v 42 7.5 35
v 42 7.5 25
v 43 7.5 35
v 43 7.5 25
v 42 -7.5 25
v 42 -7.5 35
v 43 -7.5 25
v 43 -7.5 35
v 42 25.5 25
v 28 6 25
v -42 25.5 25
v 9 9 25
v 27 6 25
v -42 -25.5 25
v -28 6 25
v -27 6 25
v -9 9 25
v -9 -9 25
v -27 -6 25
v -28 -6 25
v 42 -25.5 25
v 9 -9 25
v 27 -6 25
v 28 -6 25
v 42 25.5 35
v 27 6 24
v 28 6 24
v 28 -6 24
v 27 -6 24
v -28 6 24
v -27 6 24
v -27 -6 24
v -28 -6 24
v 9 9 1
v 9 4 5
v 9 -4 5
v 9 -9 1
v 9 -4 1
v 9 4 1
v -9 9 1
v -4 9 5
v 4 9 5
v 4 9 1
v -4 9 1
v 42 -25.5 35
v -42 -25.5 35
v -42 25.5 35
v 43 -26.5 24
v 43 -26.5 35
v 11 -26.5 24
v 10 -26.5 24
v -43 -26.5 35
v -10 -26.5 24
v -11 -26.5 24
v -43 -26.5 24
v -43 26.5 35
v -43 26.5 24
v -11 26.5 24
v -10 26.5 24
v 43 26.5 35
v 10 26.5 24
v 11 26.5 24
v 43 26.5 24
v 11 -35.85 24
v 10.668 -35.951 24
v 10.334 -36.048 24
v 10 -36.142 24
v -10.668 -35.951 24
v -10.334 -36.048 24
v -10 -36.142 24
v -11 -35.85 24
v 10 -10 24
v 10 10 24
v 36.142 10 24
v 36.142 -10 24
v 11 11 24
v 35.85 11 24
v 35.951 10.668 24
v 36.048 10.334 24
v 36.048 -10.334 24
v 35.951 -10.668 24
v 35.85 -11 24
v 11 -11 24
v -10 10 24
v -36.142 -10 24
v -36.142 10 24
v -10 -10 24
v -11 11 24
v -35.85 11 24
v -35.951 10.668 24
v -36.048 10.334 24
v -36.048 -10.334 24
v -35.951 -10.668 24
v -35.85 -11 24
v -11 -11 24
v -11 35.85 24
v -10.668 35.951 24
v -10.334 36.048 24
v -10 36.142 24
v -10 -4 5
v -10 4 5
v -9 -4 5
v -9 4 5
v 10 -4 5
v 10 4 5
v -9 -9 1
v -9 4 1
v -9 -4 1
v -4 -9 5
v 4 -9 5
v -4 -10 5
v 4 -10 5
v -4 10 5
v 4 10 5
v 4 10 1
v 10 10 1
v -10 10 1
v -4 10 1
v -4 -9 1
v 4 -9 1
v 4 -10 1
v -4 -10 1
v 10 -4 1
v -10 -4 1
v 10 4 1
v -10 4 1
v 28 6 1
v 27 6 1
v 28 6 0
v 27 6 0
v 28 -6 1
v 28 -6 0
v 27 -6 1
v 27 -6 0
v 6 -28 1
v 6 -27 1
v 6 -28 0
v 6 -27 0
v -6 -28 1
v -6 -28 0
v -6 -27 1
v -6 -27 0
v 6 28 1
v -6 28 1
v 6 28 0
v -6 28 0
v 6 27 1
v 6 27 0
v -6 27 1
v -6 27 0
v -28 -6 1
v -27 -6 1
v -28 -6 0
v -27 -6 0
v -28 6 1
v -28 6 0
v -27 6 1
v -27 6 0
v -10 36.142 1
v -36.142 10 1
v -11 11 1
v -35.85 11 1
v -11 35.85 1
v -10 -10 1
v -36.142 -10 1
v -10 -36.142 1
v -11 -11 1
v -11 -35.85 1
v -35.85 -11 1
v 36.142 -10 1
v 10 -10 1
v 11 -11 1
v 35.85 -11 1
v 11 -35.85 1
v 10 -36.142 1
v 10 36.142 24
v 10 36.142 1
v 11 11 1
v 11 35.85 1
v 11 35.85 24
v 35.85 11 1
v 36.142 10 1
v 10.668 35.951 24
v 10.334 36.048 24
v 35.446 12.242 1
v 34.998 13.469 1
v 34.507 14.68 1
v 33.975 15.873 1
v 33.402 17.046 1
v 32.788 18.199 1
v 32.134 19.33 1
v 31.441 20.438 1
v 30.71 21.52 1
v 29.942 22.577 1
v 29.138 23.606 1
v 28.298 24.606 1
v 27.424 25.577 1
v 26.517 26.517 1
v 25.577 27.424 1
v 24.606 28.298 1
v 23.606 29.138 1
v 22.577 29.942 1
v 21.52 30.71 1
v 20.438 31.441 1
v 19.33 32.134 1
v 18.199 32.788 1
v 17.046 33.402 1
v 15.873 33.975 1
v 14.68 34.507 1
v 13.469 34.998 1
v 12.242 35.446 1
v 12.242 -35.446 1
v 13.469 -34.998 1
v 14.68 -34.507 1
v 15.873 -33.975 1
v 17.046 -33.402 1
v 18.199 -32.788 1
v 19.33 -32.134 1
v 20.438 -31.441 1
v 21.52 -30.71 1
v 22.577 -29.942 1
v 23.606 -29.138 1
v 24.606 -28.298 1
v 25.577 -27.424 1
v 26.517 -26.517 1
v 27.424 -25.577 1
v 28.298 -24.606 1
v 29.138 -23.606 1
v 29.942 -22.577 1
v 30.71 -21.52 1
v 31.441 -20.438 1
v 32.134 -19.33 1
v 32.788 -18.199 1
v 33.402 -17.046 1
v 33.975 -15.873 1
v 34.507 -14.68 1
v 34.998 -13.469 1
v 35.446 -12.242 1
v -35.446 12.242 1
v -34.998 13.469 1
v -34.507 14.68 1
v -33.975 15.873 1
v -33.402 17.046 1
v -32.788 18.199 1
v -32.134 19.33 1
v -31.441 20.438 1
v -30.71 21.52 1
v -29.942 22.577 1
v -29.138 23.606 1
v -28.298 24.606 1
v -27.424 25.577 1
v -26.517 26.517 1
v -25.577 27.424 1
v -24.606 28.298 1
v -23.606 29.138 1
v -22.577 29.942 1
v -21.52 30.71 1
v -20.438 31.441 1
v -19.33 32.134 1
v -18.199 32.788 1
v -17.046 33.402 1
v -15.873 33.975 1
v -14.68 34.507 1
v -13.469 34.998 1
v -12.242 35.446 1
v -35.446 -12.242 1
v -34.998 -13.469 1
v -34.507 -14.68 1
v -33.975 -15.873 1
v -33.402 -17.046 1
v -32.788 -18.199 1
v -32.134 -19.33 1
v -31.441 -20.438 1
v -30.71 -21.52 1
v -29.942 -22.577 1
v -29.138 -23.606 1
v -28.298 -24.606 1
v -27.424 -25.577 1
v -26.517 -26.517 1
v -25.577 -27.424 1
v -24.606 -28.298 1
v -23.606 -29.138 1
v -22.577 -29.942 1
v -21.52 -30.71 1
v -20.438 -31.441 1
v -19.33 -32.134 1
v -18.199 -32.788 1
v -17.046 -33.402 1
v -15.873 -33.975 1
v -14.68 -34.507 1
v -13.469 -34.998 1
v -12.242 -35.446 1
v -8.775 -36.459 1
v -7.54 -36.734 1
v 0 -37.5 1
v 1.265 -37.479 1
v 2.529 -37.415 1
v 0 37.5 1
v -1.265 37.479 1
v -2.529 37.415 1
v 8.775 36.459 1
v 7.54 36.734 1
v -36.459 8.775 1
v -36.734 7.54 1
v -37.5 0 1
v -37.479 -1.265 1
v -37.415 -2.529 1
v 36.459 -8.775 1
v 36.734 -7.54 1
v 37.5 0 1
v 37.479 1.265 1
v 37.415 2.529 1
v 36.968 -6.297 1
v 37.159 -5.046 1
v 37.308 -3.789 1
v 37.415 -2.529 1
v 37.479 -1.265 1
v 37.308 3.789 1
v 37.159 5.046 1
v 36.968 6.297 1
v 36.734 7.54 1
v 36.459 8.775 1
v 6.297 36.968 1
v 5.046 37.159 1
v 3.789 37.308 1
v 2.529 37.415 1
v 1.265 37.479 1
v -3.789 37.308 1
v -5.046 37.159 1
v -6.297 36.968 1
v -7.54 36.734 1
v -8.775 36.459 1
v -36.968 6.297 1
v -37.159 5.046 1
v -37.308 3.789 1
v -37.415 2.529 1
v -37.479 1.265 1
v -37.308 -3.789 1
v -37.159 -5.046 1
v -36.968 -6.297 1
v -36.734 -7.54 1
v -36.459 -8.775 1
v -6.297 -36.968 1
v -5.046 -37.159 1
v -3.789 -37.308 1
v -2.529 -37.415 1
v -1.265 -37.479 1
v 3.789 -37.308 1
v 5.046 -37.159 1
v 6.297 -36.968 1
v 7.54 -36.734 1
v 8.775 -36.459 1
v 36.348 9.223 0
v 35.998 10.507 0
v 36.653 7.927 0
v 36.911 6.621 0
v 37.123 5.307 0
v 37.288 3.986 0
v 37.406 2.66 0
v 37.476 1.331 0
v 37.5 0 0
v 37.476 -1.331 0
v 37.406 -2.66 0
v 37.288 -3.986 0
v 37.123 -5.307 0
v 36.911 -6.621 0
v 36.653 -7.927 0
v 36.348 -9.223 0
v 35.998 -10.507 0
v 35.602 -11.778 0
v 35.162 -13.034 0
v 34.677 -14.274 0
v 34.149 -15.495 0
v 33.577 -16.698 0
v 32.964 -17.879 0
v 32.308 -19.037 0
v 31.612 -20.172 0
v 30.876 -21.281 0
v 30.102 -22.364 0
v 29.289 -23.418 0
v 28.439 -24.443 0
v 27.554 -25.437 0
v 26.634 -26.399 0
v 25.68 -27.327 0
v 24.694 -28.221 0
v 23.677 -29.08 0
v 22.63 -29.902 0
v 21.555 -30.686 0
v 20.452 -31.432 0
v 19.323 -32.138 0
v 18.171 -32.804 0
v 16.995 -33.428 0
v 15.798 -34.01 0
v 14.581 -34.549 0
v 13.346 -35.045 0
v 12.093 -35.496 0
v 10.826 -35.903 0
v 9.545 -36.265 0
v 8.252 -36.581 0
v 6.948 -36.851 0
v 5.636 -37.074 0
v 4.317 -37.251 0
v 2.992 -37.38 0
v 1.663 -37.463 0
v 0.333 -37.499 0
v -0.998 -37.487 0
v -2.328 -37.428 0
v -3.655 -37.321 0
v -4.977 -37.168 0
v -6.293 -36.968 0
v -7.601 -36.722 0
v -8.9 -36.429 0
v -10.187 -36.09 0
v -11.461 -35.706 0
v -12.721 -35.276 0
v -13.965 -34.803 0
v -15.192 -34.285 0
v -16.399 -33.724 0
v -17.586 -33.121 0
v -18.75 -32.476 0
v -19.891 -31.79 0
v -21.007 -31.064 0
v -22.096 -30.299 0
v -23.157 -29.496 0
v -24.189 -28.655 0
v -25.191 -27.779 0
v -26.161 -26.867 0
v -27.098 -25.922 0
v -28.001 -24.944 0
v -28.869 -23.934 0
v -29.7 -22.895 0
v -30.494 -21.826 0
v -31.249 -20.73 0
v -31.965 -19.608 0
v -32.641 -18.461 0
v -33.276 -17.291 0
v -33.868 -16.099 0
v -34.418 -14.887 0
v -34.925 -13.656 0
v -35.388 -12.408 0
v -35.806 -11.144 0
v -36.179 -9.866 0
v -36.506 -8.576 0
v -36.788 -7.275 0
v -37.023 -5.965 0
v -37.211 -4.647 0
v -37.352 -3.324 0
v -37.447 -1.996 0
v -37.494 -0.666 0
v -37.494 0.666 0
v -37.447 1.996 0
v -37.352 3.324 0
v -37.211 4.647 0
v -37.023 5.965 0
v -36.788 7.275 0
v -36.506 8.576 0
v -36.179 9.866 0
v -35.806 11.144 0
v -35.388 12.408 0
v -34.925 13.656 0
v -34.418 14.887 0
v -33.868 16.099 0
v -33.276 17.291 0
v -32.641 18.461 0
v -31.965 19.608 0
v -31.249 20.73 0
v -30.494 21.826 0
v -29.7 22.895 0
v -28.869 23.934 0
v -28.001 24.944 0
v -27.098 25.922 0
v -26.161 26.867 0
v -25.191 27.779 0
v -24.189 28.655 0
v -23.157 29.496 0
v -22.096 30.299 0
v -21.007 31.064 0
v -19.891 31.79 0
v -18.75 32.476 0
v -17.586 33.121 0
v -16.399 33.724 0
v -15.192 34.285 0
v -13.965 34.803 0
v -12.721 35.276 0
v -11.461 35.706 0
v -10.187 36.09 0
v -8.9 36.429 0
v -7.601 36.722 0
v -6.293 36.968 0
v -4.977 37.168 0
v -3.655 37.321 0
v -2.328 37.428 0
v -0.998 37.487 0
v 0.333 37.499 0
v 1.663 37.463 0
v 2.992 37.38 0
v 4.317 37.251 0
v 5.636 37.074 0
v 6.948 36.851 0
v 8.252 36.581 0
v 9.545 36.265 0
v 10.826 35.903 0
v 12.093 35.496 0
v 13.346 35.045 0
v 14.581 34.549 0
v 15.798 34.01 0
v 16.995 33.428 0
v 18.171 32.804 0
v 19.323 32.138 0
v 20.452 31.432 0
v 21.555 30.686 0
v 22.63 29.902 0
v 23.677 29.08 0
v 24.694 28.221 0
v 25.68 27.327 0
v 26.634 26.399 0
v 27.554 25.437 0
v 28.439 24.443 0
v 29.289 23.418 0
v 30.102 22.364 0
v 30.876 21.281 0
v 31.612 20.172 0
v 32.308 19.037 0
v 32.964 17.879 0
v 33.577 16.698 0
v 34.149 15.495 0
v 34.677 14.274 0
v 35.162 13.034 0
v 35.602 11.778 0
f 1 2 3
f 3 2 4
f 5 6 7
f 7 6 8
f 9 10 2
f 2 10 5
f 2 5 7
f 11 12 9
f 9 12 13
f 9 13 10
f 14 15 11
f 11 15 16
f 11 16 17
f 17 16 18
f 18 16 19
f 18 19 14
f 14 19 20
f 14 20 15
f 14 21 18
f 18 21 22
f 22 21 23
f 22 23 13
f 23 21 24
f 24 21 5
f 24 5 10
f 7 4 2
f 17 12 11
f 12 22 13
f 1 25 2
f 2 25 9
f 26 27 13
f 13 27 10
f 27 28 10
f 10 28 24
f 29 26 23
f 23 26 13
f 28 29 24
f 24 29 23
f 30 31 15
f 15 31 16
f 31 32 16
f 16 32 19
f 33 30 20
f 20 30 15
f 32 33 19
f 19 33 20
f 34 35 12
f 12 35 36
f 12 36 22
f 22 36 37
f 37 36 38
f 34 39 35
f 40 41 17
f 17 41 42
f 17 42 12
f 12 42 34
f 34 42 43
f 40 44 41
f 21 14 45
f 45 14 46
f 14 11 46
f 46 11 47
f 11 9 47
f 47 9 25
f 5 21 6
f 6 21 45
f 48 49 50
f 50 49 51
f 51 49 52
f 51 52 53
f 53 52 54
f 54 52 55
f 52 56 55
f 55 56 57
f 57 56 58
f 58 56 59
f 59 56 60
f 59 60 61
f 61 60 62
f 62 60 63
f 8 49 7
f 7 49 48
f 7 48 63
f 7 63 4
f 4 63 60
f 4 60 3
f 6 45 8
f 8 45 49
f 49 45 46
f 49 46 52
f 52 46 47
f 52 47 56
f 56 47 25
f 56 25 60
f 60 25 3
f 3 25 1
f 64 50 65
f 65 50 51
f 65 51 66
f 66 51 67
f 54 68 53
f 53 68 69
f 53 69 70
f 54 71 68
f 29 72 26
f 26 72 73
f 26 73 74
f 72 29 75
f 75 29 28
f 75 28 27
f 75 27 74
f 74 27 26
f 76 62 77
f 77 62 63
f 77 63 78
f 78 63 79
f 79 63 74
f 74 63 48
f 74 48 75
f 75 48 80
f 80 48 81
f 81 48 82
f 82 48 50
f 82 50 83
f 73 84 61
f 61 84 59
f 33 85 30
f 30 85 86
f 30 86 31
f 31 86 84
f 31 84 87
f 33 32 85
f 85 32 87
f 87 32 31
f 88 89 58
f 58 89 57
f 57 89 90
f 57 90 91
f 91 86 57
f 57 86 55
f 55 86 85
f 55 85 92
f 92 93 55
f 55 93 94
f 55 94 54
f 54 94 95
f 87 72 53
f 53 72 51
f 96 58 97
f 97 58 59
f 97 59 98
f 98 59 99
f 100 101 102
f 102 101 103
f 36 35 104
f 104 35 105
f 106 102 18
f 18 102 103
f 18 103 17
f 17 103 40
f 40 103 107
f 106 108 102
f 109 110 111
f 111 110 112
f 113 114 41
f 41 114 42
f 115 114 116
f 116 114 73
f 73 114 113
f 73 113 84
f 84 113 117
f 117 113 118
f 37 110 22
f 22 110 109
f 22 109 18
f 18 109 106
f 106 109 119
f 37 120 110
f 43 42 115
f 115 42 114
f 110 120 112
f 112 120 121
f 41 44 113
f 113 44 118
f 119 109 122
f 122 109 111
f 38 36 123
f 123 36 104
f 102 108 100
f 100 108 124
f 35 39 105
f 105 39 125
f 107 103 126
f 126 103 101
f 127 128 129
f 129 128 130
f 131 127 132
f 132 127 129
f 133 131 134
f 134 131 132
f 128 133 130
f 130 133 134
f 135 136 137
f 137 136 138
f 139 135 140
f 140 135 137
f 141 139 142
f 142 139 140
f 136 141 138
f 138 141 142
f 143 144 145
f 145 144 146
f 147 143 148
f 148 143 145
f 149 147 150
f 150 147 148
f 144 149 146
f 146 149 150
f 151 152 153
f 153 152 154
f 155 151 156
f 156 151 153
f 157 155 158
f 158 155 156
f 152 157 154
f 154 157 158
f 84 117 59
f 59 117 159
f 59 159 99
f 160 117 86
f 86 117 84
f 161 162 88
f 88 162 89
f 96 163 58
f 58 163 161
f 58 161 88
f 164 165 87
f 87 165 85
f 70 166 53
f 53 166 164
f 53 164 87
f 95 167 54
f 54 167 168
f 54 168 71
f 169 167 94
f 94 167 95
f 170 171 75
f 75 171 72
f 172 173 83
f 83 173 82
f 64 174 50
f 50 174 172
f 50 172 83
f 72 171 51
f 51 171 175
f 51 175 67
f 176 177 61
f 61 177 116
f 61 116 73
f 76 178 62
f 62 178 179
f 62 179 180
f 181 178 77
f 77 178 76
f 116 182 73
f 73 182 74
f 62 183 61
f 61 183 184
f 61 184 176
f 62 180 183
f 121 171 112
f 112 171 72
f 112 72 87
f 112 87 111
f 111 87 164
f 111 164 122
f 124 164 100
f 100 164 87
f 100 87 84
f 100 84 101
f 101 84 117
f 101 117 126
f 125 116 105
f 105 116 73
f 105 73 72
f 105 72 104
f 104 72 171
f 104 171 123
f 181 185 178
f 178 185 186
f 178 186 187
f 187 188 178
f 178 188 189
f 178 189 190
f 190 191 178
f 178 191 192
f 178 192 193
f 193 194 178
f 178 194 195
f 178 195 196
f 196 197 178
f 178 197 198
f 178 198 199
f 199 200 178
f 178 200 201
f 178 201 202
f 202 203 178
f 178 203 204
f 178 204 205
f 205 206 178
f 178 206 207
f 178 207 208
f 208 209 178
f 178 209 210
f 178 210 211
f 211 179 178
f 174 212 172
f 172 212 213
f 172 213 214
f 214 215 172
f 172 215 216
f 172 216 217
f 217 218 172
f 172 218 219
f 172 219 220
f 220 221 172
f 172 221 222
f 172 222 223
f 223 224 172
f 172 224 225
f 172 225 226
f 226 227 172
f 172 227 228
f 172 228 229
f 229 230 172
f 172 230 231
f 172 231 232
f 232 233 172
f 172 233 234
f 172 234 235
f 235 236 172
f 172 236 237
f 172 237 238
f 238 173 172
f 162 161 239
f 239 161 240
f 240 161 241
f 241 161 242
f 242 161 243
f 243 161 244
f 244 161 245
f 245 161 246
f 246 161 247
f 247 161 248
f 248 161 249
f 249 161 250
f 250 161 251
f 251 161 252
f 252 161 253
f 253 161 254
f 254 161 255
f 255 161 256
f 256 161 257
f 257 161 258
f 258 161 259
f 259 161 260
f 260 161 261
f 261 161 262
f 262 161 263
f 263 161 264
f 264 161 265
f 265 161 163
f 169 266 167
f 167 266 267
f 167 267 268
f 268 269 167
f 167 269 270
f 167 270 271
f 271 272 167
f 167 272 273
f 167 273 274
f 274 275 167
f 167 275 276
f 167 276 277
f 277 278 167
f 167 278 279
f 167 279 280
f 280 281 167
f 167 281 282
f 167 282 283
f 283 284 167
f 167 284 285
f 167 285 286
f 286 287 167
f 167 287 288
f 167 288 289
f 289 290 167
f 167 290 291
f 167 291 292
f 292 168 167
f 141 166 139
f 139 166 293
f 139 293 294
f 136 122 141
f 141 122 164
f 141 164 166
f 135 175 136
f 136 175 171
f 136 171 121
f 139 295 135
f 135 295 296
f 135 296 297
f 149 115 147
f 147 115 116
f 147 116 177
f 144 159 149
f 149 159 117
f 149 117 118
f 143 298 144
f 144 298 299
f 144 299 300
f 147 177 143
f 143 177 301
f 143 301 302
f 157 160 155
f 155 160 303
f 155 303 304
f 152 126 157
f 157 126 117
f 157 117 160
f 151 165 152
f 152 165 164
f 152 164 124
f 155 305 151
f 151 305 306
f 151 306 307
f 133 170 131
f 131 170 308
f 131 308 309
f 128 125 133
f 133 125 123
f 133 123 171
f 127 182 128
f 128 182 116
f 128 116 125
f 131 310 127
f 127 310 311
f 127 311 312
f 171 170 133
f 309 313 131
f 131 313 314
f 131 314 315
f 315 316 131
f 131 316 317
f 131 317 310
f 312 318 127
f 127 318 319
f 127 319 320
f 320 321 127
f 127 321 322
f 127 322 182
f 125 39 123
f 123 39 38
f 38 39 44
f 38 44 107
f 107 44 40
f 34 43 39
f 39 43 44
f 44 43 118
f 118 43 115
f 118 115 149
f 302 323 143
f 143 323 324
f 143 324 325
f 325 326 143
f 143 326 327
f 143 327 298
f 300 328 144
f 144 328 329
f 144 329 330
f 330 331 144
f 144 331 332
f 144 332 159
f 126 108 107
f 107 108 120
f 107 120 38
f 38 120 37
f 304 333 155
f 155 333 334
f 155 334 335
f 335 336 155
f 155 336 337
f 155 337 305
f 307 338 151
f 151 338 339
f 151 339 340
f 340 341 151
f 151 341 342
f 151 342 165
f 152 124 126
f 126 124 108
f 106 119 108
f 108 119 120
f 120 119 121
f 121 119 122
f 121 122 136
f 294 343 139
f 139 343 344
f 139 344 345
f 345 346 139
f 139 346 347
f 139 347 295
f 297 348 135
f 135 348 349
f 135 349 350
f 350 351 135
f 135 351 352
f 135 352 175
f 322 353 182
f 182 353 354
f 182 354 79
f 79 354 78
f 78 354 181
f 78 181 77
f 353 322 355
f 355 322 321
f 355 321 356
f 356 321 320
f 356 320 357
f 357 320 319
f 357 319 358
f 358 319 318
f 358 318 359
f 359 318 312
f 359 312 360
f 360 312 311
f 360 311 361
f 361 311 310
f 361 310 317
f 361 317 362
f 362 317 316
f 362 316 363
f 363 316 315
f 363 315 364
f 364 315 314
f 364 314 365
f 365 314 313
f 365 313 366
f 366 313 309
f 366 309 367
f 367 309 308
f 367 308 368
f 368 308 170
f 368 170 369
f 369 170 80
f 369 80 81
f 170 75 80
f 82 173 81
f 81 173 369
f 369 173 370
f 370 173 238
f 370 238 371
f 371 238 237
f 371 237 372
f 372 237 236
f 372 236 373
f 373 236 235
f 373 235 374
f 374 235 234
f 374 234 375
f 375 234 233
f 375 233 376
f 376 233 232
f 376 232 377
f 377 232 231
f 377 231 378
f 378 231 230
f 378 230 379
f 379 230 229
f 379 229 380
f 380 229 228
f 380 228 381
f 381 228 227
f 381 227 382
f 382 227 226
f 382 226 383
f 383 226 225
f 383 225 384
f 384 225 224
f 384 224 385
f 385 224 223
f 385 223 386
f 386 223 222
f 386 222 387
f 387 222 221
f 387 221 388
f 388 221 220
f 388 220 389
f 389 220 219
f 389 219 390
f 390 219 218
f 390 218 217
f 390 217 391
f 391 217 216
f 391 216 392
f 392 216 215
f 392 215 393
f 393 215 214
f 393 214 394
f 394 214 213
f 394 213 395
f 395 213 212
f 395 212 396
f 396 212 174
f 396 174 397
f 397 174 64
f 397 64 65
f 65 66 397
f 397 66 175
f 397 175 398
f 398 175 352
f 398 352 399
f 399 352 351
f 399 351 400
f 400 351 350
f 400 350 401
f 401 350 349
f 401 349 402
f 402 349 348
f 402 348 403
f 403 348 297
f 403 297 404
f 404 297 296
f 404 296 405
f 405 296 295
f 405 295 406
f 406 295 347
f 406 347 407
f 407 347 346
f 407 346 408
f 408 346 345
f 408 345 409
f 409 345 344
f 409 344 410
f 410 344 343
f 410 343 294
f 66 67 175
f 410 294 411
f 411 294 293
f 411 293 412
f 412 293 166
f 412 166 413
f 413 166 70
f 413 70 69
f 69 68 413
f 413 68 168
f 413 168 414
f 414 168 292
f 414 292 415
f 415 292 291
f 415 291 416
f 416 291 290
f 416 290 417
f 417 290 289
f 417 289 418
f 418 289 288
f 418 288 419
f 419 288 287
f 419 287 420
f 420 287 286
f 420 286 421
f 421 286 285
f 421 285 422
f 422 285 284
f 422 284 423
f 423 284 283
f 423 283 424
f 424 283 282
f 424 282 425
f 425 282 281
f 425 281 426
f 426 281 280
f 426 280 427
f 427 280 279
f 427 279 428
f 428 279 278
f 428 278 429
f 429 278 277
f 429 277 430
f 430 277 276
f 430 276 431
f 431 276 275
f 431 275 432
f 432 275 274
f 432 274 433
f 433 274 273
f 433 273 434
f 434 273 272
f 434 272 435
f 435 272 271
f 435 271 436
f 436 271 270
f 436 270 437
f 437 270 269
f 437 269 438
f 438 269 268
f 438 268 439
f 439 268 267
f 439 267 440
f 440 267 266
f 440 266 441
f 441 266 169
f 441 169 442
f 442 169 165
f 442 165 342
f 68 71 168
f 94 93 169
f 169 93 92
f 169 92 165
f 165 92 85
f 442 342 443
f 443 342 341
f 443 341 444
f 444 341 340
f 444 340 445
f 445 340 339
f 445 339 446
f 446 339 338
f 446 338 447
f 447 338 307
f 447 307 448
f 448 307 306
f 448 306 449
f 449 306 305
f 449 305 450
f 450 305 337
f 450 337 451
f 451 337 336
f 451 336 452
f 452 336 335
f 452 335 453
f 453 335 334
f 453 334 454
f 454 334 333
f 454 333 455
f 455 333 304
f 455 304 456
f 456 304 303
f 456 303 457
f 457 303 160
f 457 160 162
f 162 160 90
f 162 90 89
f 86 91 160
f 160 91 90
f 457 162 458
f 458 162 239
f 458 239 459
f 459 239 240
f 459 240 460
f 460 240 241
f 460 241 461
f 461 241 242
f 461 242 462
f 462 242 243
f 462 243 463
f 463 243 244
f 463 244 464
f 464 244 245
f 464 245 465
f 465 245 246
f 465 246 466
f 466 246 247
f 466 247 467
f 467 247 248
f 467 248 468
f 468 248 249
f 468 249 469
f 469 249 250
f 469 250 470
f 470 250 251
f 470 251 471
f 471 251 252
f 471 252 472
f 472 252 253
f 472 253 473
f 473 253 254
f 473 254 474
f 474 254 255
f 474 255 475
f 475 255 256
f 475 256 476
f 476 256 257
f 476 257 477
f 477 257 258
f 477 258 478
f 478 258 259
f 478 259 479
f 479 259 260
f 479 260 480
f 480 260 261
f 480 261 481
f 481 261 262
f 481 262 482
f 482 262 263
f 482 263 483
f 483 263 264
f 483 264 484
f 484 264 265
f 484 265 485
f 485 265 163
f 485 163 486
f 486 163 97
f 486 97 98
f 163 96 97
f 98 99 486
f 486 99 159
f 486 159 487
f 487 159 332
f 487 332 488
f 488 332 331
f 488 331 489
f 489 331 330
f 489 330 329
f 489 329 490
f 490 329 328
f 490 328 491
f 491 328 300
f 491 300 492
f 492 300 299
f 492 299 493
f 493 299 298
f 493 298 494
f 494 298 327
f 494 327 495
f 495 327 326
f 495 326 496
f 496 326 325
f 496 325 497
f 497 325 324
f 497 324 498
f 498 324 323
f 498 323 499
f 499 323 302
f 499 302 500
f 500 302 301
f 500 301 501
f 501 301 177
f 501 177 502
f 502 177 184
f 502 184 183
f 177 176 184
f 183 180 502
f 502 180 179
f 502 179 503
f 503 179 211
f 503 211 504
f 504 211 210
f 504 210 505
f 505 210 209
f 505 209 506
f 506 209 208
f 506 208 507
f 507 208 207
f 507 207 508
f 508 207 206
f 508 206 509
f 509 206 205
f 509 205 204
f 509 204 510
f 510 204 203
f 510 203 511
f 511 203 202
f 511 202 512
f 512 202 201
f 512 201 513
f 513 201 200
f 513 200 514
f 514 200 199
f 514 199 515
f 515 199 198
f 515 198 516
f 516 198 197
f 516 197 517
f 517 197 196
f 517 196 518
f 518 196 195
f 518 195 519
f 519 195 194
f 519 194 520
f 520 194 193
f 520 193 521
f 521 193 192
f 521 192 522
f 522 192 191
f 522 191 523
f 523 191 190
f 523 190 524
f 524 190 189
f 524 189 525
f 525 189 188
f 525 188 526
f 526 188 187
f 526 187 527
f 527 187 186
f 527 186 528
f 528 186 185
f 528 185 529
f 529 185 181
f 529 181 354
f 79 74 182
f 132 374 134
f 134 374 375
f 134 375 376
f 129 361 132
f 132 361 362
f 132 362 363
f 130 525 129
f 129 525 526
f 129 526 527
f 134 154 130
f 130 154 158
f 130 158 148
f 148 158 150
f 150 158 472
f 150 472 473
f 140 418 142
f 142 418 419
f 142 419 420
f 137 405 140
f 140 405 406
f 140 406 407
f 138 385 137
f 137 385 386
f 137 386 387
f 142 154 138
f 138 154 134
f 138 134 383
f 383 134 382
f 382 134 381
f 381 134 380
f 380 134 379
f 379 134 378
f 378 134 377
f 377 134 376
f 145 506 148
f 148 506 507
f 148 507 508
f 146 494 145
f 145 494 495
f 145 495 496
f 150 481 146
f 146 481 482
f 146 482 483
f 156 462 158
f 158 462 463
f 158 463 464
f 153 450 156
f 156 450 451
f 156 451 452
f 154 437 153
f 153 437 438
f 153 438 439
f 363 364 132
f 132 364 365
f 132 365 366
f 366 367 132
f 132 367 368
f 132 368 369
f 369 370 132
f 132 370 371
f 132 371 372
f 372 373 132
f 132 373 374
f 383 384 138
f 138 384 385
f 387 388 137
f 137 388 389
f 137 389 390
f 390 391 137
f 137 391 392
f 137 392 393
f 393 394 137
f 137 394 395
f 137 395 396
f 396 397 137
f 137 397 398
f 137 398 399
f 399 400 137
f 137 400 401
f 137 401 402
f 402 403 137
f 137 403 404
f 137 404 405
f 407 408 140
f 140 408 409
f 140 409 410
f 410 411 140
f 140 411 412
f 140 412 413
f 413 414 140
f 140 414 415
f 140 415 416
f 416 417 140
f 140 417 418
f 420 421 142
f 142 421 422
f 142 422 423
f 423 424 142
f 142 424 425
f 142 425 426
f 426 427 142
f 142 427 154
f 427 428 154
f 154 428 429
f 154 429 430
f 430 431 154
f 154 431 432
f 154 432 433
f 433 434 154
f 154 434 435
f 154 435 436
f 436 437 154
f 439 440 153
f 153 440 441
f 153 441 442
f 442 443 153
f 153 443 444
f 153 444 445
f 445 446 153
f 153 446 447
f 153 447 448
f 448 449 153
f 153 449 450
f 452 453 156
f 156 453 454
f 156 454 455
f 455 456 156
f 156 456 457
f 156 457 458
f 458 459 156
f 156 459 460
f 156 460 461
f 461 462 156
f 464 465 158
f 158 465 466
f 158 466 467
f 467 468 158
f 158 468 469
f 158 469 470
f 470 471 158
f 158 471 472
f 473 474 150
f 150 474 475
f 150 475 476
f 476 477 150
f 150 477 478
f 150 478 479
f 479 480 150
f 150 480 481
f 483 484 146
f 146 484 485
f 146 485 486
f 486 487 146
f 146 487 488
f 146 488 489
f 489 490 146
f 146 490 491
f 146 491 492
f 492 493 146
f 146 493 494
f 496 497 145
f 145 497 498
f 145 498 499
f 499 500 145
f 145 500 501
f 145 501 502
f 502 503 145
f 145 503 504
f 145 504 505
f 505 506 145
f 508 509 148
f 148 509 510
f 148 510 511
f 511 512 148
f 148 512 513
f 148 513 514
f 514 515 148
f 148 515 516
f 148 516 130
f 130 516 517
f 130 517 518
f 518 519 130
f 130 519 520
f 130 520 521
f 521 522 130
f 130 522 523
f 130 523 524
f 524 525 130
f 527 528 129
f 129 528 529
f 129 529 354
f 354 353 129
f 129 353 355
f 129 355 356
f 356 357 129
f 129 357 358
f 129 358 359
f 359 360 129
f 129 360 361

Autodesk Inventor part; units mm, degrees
ref_plane "YZ Plane" through (0, 0, 0) normal (1, 0, 0) x (0, 1, 0)
ref_plane "XZ Plane" through (0, 0, 0) normal (0, 1, 0) x (-1, 0, 0)
ref_plane "XY Plane" through (0, 0, 0) normal (0, 0, 1) x (1, 0, 0)
sketch "Sketch1" plane through (0, 0, 0) normal (0, 0, 1) x (1, 0, 0)
  circle A0 centre (0, 0) radius 37.5
  dimension "d0" = 75
extrude "Extrusion1" add sketch "Sketch1" along normal blind 1
sketch "Sketch2" plane through (0, 0, 1) normal (0, 0, 1) x (1, 0, 0)
  line L0 (-10, -10) -> (10, -10)
  line L1 (10, -10) -> (10, 10)
  line L2 (10, 10) -> (-10, 10)
  line L3 (-10, 10) -> (-10, -10)
  line L4 (-10, 10) -> (10, 10)
  line L5 (10, 10) -> (10, 36.1421)
  line L6 (-10, 36.1421) -> (-10, 10)
  line L7 (10, 10) -> (36.1421, 10)
  line L8 (36.1421, -10) -> (10, -10)
  line L9 (10, -10) -> (10, 10)
  line L10 (-10, -10) -> (10, -10)
  line L11 (10, -10) -> (10, -36.1421)
  line L12 (-10, -36.1421) -> (-10, -10)
  line L13 (-10, -10) -> (-36.1421, -10)
  line L14 (-36.1421, 10) -> (-10, 10)
  line L15 (-10, 10) -> (-10, -10)
  line L16 (35.8504, 11) -> (10, 11)
  line L17 (9, 9) -> (9, -9)
  line L18 (10, -11) -> (35.8504, -11)
  line L19 (11, 10) -> (11, 35.8504)
  line L20 (-11, 35.8504) -> (-11, 10)
  line L21 (-10, 11) -> (-35.8504, 11)
  line L22 (-35.8504, -11) -> (-10, -11)
  line L23 (-9, -9) -> (-9, 9)
  line L24 (-9, -9) -> (9, -9)
  line L25 (11, -10) -> (11, -35.8504)
  line L26 (-11, -35.8504) -> (-11, -10)
  line L27 (-9, 9) -> (9, 9)
  line L28 (9, 9) -> (9, -9)
  line L29 (9, -9) -> (-9, -9)
  line L30 (10, -10) -> (9, -9) construction
  line L31 (-9, 9) -> (-10, 10) construction
  line L32 (-10, -10) -> (-9, -9) construction
  line L33 (9, 9) -> (10, 10) construction
  circle A0 centre (0, 0) radius 37.5
  line L34 (-9, -49.0456) -> (-11, -49.0456)
  point P0 (-11, -11)
  point P1 (11, -11)
  point P2 (-11, 11)
  point P3 (11, 11)
  dimension "d3" = 20
  dimension "d4" = 20
  dimension "d5" = 1
  dimension "d6" = 1
  dimension "d7" = 1
  dimension "d8" = 1
  dimension "d9" = 1
extrude "Extrusion2" add sketch "Sketch2" along normal blind 23 contours L3 L2 L1 L0 | L12 L22 L26 L13 | L8 L25 L18 L11 | L14 L20 L21 L6 | L12 A0 L26 L22 | L26 L22 A0 L13 | L5 L16 L19 L7 | L8 A0 L18 L25 | L18 L25 A0 L11 | L21 L20 A0 L6 | L14 A0 L21 L20 | L5 A0 L19 L16 | L19 L16 A0 L7
sketch "Sketch5" plane through (0, 0, 1) normal (0, 0, 1) x (1, 0, 0)
  line L0 (10, -10) -> (10, 10) projected
  line L1 (36.1421, -10) -> (10, -10) projected
  line L2 (10, 10) -> (27, 10)
  line L3 (27, 10) -> (27, -10)
  line L4 (27, -10) -> (10, -10)
  line L5 (10, -10) -> (10, 10)
  line L6 (27, 0) -> (27.5, 0)
  line L7 (27, -6) -> (28, -6)
  line L8 (28, -6) -> (28, 6)
  line L9 (28, 6) -> (27, 6)
  line L10 (27, 6) -> (27, -6)
  line L11 (27, -6) -> (28, 6) construction
  line L12 (28, -6) -> (27, 6) construction
  line L13 (-10, 10) -> (-10, -10) projected
  line L14 (-10, 0) -> (-27.5, 0)
  line L15 (-28, -6) -> (-27, -6)
  line L16 (-27, -6) -> (-27, 6)
  line L17 (-27, 6) -> (-28, 6)
  line L18 (-28, 6) -> (-28, -6)
  line L19 (-28, -6) -> (-27, 6) construction
  line L20 (-27, -6) -> (-28, 6) construction
  line L21 (10, -10) -> (-10, -10) projected
  line L22 (0, -10) -> (0, -27.5)
  line L23 (-6, -28) -> (6, -28)
  line L24 (6, -28) -> (6, -27)
  line L25 (6, -27) -> (-6, -27)
  line L26 (-6, -27) -> (-6, -28)
  line L27 (-6, -28) -> (6, -27) construction
  line L28 (6, -28) -> (-6, -27) construction
  line L29 (10, 10) -> (-10, 10) projected
  line L30 (0, 10) -> (0, 27.5)
  line L31 (-6, 27) -> (6, 27)
  line L32 (6, 27) -> (6, 28)
  line L33 (6, 28) -> (-6, 28)
  line L34 (-6, 28) -> (-6, 27)
  line L35 (-6, 27) -> (6, 28) construction
  line L36 (6, 27) -> (-6, 28) construction
  point P0 (0, 0)
  dimension "d21" = 17
  dimension "d22" = 0.5
  dimension "d23" = 1
  dimension "d24" = 12
  dimension "d25" = 17.5
  dimension "d26" = 1
  dimension "d27" = 12
  dimension "d28" = 17.5
  dimension "d29" = 12
  dimension "d30" = 1
  dimension "d31" = 17.5
  dimension "d32" = 12
  dimension "d33" = 1
extrude "Extrusion5" cut sketch "Sketch5" along normal blind 93 and the other way blind 11.5 contours L25 L24 L23 L26 | L16 L15 L18 L17 | L31 L34 L33 L32 | L3 L9 L8 L7
sketch "Sketch6" plane through (10, -10, 1) normal (1, 0, 0) x (0, 0, -1)
  line L0 (-7.5, 9) -> (-7.5, 11) projected
  line L1 (-7.5, 10) -> (0, 10)
  line L2 (0, 20) -> (0, 0) projected
  line L3 (0, 10) -> (-2, 10)
  line L4 (-3, 14) -> (-1, 14)
  line L5 (-1, 14) -> (-1, 6)
  line L6 (-1, 6) -> (-3, 6)
  line L7 (-3, 6) -> (-3, 14)
  line L8 (-3, 14) -> (-1, 6) construction
  line L9 (-1, 14) -> (-3, 6) construction
  point P0 (1, 10)
  dimension "d36" = 2
  dimension "d37" = 2
  dimension "d38" = 8
extrude "Extrusion6" cut sketch "Sketch6" against normal blind 23
sketch "Sketch7" plane through (-10, -10, 1) normal (0, -1, 0) x (1, 0, 0)
  line L0 (11, 7.5) -> (9, 7.5) projected
  line L1 (10, 7.5) -> (10, -0.0458)
  line L2 (10, -0.0458) -> (10, 1.9542)
  line L3 (6, 2.9542) -> (14, 2.9542)
  line L4 (14, 2.9542) -> (14, 0.9542)
  line L5 (14, 0.9542) -> (6, 0.9542)
  line L6 (6, 0.9542) -> (6, 2.9542)
  line L7 (6, 2.9542) -> (14, 0.9542) construction
  line L8 (14, 2.9542) -> (6, 0.9542) construction
  point P0 (10, -1)
  dimension "d41" = 2
  dimension "d42" = 8
extrude "Extrusion7" cut sketch "Sketch7" against normal blind 23
sketch "Sketch8" plane through (-10, -10, 1) normal (0, -1, 0) x (1, 0, 0)
  line L0 (6, 0.9542) -> (6, 2.9542) projected
  line L1 (4, 0) -> (16, 0) projected
  line L2 (6, 2.9542) -> (14, 2.9542)
  line L3 (14, 2.9542) -> (14, 0)
  line L4 (14, 0) -> (6, 0)
  line L5 (6, 0) -> (6, 2.9542)
  line L6 (6, 0) -> (14, 0)
  line L7 (14, 0) -> (14, 4)
  line L8 (14, 4) -> (6, 4)
  line L9 (6, 4) -> (6, 0)
  point P0 (10, -1)
  dimension "d45" = 8
  dimension "d46" = 8
  dimension "d47" = 4
extrude "Extrusion8" cut sketch "Sketch8" against normal blind 23
sketch "Sketch9" plane through (10, -10, 1) normal (1, 0, 0) x (0, 0, -1)
  line L0 (-3, 14) -> (-3, 6) projected
  line L1 (-3, 14) -> (0, 14)
  line L2 (0, 14) -> (0, 6)
  line L3 (0, 6) -> (-3, 6)
  line L4 (-3, 6) -> (-3, 14)
  line L5 (0, 6) -> (-4, 6)
  line L6 (-4, 6) -> (-4, 14)
  line L7 (-4, 14) -> (0, 14)
  line L8 (0, 14) -> (0, 6)
  point P0 (1, 10)
  dimension "d50" = 3
  dimension "d51" = 8
  dimension "d52" = 4
extrude "Extrusion9" cut sketch "Sketch9" against normal blind 23
sketch "Sketch10" plane through (0, 0, 24) normal (0, 0, 1) x (1, 0, 0)
  line L0 (42, 25.5) -> (-42, 25.5)
  line L1 (-42, 25.5) -> (-42, -25.5)
  line L2 (-42, -25.5) -> (42, -25.5)
  line L3 (42, -25.5) -> (42, 25.5)
  line L4 (42, 25.5) -> (-42, -25.5) construction
  line L5 (-42, 25.5) -> (42, -25.5) construction
  point P0 (0, 0)
  dimension "d55" = 84
  dimension "d56" = 51
extrude "Extrusion10" add sketch "Sketch10" along normal blind 1
sketch "Sketch11" plane through (0, 0, 25) normal (0, 0, 1) x (1, 0, 0)
  line L0 (11, -25.5) -> (42, -25.5) projected
  line L1 (-42, 25.5) -> (42, 25.5)
  line L2 (42, 25.5) -> (42, -25.5)
  line L3 (42, -25.5) -> (-42, -25.5)
  line L4 (-42, -25.5) -> (-42, 25.5)
  line L5 (-42, 25.5) -> (42, -25.5) construction
  line L6 (42, 25.5) -> (-42, -25.5) construction
  line L7 (43, -26.5) -> (43, 26.5)
  line L8 (43, 26.5) -> (-43, 26.5)
  line L9 (-43, 26.5) -> (-43, -26.5)
  line L10 (-43, -26.5) -> (43, -26.5)
  point P0 (0, 0)
  dimension "d59" = 1
extrude "Extrusion11" add sketch "Sketch11" along normal blind 10 and the other way blind 1
sketch "Sketch12" plane through (0, 0, 25) normal (0, 0, 1) x (1, 0, 0)
  line L0 (9, -9) -> (-9, -9)
  line L1 (-9, -9) -> (-9, 9)
  line L2 (-9, 9) -> (9, 9)
  line L3 (9, 9) -> (9, -9)
  line L4 (9, -9) -> (-9, 9) construction
  line L5 (-9, -9) -> (9, 9) construction
  point P0 (0, 0)
  dimension "d64" = 18
  dimension "d65" = 18
extrude "Extrusion12" cut sketch "Sketch12" against normal blind 10
sketch "Sketch13" plane through (0, 0, 0) normal (0, 0, -1) x (-1, 0, 0)
  line L0 (-6, 27) -> (6, 27) projected
  line L1 (6, 27) -> (6, 28) projected
  line L2 (-6, 27) -> (6, 27)
  line L3 (6, 27) -> (6, 28)
  line L4 (6, 28) -> (-6, 28)
  line L5 (-6, 28) -> (-6, 27)
  line L6 (-28, -6) -> (-28, 6) projected
  line L7 (-28, 6) -> (-27, 6) projected
  line L8 (-28, -6) -> (-27, -6)
  line L9 (-27, -6) -> (-27, 6)
  line L10 (-27, 6) -> (-28, 6)
  line L11 (-28, 6) -> (-28, -6)
  line L12 (6, -28) -> (6, -27) projected
  line L13 (6, -28) -> (-6, -28)
  line L14 (-6, -28) -> (-6, -27)
  line L15 (-6, -27) -> (6, -27)
  line L16 (6, -27) -> (6, -28)
  line L17 (28, 6) -> (28, -6) projected
  line L18 (27, 6) -> (28, 6) projected
  line L19 (28, -6) -> (27, -6)
  line L20 (27, -6) -> (27, 6)
  line L21 (27, 6) -> (28, 6)
  line L22 (28, 6) -> (28, -6)
  point P0 (0, 0)
extrude "Extrusion13" cut sketch "Sketch13" along normal mid plane 93
sketch "Sketch14" plane through (43, -26.5, 35) normal (1, 0, 0) x (0, 0, -1)
  line L0 (11, 16.5) -> (11, 36.5) projected
  line L1 (11, 26.5) -> (0, 26.5)
  line L2 (0, 0) -> (0, 53) projected
  line L3 (21, 34) -> (1, 34)
  line L4 (1, 34) -> (1, 19)
  line L5 (1, 19) -> (21, 19)
  line L6 (21, 19) -> (21, 34)
  line L7 (21, 34) -> (1, 19) construction
  line L8 (1, 34) -> (21, 19) construction
  line L9 (0, 19) -> (10, 19)
  line L10 (10, 19) -> (10, 34)
  line L11 (10, 34) -> (0, 34)
  line L12 (0, 34) -> (0, 19)
  point P0 (35, 26.5)
  dimension "d72" = 20
  dimension "d73" = 15
  dimension "d74" = 10
extrude "Extrusion14" cut sketch "Sketch14" against normal blind 3 contours L5 L4 L1 L10 | L1 L4 L3 L10 | L9 L2 L1 L4 | L1 L2 L11 L4
properties part number "_3DPrint"
